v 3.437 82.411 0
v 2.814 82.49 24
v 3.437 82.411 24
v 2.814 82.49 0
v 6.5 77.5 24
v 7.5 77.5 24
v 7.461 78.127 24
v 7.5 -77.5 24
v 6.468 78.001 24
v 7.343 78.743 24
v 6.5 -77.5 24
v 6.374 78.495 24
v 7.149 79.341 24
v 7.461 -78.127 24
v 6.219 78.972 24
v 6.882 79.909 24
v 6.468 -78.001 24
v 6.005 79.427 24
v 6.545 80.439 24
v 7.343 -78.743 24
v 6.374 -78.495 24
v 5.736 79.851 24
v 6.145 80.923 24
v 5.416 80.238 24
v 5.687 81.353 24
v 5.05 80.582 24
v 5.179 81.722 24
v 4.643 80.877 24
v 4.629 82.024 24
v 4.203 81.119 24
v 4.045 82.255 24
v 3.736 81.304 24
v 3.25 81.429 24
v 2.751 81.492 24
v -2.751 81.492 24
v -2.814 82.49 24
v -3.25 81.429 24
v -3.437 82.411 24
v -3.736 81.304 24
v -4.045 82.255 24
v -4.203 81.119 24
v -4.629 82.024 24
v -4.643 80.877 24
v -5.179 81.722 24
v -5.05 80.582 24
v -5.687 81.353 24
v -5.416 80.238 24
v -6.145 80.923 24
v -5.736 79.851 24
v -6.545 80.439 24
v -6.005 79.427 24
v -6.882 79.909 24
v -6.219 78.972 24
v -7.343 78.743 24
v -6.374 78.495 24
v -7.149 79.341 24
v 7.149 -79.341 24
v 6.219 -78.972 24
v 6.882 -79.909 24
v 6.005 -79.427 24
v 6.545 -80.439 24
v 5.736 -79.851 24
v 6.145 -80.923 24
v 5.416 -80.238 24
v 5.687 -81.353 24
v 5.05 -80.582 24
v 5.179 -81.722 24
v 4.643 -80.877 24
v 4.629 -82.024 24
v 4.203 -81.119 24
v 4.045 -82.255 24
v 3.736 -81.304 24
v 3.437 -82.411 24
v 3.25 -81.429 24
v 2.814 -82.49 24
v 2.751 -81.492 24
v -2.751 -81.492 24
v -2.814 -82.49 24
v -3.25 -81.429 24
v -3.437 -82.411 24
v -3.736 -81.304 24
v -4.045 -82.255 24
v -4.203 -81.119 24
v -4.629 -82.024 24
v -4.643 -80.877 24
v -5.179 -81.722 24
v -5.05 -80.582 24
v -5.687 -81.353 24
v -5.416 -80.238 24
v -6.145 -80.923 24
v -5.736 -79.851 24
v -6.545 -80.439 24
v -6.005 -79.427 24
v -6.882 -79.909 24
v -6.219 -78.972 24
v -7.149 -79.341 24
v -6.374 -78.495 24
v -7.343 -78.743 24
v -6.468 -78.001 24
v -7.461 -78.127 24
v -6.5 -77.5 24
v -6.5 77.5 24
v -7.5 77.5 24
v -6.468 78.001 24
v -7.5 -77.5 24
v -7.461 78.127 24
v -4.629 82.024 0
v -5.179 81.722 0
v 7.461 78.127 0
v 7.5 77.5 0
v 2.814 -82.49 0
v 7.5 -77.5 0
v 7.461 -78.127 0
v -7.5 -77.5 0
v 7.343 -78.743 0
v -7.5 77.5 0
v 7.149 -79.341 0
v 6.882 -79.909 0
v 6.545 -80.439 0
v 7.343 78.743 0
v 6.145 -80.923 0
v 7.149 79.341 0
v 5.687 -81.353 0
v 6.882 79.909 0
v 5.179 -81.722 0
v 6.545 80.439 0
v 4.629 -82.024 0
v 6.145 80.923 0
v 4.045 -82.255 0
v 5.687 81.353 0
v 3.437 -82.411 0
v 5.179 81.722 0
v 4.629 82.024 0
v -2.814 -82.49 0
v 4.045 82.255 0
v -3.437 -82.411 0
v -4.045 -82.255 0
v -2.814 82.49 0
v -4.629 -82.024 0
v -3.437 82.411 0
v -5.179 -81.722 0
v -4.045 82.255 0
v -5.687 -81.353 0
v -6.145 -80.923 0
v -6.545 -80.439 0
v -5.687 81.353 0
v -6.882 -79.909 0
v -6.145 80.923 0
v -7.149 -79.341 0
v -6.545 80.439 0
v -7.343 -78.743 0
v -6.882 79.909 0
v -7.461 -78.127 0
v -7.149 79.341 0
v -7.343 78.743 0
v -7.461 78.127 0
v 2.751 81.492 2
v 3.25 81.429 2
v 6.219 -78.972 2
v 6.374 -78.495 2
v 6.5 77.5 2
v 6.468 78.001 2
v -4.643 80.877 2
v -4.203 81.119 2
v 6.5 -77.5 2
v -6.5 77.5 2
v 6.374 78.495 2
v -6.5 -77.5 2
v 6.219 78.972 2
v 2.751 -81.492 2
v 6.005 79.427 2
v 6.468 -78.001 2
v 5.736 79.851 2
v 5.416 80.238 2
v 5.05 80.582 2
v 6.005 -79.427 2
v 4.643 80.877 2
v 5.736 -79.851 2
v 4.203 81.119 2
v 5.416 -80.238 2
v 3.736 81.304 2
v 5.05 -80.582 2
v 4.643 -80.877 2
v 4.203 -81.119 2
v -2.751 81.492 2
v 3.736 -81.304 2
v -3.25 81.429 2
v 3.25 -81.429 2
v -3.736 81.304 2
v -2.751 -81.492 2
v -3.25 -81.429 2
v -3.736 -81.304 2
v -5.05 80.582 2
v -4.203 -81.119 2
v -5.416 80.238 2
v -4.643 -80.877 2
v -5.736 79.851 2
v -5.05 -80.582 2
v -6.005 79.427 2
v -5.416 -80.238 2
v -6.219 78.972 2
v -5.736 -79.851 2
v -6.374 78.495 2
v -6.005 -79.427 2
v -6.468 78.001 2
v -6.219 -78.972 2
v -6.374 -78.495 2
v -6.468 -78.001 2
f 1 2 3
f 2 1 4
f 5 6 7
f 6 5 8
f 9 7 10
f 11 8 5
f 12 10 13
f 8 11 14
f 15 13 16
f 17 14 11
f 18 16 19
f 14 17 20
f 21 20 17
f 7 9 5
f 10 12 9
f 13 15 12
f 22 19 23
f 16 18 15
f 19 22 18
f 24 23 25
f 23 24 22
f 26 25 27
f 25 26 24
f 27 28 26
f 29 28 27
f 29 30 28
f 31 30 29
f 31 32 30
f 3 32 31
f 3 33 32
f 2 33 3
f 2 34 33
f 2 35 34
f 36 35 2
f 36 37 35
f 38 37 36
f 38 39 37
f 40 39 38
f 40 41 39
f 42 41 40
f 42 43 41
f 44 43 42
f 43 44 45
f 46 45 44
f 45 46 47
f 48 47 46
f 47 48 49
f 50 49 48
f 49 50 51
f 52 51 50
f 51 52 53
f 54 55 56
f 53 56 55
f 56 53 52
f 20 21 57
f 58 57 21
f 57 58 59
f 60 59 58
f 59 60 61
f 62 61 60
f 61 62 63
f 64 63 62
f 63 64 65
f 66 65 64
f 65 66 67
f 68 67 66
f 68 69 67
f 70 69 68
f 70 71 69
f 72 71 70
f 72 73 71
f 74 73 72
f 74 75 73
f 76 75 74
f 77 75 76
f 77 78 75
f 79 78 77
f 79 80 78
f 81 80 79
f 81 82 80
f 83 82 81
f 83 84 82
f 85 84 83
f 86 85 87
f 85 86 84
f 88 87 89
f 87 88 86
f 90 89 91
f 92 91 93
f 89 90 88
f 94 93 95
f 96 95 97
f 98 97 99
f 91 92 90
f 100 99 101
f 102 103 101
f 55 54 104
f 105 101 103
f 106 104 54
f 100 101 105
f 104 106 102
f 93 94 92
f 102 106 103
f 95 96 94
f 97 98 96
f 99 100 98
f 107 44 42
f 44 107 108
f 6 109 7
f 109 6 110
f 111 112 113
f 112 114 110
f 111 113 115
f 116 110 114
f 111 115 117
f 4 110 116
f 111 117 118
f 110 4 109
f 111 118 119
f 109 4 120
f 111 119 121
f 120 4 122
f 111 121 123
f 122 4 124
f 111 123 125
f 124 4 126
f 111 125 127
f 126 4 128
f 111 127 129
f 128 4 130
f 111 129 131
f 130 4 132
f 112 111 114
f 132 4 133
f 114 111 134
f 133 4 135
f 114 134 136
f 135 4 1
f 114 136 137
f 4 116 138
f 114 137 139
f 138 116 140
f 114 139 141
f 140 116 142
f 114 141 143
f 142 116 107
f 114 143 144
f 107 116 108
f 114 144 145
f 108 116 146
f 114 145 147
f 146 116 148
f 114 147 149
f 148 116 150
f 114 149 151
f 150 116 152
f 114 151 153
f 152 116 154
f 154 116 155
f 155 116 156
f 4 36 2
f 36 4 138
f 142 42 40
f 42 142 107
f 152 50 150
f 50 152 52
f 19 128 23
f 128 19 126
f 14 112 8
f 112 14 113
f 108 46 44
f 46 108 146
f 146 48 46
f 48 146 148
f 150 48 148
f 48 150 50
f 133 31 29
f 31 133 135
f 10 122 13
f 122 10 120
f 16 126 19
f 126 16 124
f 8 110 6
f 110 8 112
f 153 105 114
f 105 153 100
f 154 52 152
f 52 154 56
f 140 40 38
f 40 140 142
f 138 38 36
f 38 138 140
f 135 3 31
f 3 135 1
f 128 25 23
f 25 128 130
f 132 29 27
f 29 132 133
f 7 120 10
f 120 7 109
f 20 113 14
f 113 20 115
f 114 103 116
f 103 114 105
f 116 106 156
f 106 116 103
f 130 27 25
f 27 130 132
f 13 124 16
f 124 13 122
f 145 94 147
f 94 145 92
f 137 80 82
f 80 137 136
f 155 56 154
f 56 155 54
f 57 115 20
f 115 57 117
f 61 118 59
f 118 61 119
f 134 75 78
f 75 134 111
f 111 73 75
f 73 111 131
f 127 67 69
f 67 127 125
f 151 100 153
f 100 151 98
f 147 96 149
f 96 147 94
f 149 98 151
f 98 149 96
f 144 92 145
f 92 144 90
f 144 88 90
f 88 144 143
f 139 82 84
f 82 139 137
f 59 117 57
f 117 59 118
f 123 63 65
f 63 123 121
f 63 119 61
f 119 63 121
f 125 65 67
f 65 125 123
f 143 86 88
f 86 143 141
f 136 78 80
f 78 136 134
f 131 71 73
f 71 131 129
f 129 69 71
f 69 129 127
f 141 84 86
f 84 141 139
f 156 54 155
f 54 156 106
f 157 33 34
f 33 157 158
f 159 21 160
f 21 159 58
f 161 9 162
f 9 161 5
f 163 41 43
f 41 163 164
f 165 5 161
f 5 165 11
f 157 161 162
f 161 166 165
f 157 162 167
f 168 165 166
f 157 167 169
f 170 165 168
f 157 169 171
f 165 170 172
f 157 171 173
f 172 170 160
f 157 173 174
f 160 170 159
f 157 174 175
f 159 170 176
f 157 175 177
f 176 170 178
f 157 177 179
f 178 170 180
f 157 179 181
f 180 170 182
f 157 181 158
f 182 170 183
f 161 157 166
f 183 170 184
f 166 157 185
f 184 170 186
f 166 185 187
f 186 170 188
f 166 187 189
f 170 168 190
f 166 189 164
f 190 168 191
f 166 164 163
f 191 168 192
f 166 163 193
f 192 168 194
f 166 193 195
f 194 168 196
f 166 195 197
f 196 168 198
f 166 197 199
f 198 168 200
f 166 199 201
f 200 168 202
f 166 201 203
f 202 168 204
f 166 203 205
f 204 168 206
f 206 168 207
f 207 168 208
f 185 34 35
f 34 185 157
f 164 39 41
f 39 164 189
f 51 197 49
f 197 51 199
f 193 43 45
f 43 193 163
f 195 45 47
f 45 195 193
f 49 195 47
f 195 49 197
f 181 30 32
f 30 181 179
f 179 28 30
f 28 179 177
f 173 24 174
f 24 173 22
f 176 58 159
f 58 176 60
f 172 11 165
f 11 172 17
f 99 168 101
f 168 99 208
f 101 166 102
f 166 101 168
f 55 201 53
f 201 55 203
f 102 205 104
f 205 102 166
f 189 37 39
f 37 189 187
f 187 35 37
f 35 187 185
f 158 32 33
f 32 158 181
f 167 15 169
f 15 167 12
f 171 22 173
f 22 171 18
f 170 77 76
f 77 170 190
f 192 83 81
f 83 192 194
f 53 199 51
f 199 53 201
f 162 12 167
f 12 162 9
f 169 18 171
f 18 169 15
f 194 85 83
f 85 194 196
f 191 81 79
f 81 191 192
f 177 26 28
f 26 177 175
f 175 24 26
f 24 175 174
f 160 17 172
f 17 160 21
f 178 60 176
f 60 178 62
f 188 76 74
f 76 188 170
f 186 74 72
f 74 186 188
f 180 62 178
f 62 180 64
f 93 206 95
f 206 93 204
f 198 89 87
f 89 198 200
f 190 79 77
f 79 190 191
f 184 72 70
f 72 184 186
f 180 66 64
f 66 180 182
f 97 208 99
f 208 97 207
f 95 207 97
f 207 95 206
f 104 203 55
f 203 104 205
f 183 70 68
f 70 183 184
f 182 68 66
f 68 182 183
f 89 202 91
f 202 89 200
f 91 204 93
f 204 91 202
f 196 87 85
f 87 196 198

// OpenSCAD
$fn = 50;


difference() {
	union() {
		hull() {
			translate(v = [-2.5000000000, 77.5000000000, 0]) {
				cylinder(h = 24, r = 5);
			}
			translate(v = [2.5000000000, 77.5000000000, 0]) {
				cylinder(h = 24, r = 5);
			}
			translate(v = [-2.5000000000, -77.5000000000, 0]) {
				cylinder(h = 24, r = 5);
			}
			translate(v = [2.5000000000, -77.5000000000, 0]) {
				cylinder(h = 24, r = 5);
			}
		}
	}
	union() {
		translate(v = [0, 0, 2]) {
			hull() {
				translate(v = [-2.5000000000, 77.5000000000, 0]) {
					cylinder(h = 22, r = 4);
				}
				translate(v = [2.5000000000, 77.5000000000, 0]) {
					cylinder(h = 22, r = 4);
				}
				translate(v = [-2.5000000000, -77.5000000000, 0]) {
					cylinder(h = 22, r = 4);
				}
				translate(v = [2.5000000000, -77.5000000000, 0]) {
					cylinder(h = 22, r = 4);
				}
			}
		}
	}
}
